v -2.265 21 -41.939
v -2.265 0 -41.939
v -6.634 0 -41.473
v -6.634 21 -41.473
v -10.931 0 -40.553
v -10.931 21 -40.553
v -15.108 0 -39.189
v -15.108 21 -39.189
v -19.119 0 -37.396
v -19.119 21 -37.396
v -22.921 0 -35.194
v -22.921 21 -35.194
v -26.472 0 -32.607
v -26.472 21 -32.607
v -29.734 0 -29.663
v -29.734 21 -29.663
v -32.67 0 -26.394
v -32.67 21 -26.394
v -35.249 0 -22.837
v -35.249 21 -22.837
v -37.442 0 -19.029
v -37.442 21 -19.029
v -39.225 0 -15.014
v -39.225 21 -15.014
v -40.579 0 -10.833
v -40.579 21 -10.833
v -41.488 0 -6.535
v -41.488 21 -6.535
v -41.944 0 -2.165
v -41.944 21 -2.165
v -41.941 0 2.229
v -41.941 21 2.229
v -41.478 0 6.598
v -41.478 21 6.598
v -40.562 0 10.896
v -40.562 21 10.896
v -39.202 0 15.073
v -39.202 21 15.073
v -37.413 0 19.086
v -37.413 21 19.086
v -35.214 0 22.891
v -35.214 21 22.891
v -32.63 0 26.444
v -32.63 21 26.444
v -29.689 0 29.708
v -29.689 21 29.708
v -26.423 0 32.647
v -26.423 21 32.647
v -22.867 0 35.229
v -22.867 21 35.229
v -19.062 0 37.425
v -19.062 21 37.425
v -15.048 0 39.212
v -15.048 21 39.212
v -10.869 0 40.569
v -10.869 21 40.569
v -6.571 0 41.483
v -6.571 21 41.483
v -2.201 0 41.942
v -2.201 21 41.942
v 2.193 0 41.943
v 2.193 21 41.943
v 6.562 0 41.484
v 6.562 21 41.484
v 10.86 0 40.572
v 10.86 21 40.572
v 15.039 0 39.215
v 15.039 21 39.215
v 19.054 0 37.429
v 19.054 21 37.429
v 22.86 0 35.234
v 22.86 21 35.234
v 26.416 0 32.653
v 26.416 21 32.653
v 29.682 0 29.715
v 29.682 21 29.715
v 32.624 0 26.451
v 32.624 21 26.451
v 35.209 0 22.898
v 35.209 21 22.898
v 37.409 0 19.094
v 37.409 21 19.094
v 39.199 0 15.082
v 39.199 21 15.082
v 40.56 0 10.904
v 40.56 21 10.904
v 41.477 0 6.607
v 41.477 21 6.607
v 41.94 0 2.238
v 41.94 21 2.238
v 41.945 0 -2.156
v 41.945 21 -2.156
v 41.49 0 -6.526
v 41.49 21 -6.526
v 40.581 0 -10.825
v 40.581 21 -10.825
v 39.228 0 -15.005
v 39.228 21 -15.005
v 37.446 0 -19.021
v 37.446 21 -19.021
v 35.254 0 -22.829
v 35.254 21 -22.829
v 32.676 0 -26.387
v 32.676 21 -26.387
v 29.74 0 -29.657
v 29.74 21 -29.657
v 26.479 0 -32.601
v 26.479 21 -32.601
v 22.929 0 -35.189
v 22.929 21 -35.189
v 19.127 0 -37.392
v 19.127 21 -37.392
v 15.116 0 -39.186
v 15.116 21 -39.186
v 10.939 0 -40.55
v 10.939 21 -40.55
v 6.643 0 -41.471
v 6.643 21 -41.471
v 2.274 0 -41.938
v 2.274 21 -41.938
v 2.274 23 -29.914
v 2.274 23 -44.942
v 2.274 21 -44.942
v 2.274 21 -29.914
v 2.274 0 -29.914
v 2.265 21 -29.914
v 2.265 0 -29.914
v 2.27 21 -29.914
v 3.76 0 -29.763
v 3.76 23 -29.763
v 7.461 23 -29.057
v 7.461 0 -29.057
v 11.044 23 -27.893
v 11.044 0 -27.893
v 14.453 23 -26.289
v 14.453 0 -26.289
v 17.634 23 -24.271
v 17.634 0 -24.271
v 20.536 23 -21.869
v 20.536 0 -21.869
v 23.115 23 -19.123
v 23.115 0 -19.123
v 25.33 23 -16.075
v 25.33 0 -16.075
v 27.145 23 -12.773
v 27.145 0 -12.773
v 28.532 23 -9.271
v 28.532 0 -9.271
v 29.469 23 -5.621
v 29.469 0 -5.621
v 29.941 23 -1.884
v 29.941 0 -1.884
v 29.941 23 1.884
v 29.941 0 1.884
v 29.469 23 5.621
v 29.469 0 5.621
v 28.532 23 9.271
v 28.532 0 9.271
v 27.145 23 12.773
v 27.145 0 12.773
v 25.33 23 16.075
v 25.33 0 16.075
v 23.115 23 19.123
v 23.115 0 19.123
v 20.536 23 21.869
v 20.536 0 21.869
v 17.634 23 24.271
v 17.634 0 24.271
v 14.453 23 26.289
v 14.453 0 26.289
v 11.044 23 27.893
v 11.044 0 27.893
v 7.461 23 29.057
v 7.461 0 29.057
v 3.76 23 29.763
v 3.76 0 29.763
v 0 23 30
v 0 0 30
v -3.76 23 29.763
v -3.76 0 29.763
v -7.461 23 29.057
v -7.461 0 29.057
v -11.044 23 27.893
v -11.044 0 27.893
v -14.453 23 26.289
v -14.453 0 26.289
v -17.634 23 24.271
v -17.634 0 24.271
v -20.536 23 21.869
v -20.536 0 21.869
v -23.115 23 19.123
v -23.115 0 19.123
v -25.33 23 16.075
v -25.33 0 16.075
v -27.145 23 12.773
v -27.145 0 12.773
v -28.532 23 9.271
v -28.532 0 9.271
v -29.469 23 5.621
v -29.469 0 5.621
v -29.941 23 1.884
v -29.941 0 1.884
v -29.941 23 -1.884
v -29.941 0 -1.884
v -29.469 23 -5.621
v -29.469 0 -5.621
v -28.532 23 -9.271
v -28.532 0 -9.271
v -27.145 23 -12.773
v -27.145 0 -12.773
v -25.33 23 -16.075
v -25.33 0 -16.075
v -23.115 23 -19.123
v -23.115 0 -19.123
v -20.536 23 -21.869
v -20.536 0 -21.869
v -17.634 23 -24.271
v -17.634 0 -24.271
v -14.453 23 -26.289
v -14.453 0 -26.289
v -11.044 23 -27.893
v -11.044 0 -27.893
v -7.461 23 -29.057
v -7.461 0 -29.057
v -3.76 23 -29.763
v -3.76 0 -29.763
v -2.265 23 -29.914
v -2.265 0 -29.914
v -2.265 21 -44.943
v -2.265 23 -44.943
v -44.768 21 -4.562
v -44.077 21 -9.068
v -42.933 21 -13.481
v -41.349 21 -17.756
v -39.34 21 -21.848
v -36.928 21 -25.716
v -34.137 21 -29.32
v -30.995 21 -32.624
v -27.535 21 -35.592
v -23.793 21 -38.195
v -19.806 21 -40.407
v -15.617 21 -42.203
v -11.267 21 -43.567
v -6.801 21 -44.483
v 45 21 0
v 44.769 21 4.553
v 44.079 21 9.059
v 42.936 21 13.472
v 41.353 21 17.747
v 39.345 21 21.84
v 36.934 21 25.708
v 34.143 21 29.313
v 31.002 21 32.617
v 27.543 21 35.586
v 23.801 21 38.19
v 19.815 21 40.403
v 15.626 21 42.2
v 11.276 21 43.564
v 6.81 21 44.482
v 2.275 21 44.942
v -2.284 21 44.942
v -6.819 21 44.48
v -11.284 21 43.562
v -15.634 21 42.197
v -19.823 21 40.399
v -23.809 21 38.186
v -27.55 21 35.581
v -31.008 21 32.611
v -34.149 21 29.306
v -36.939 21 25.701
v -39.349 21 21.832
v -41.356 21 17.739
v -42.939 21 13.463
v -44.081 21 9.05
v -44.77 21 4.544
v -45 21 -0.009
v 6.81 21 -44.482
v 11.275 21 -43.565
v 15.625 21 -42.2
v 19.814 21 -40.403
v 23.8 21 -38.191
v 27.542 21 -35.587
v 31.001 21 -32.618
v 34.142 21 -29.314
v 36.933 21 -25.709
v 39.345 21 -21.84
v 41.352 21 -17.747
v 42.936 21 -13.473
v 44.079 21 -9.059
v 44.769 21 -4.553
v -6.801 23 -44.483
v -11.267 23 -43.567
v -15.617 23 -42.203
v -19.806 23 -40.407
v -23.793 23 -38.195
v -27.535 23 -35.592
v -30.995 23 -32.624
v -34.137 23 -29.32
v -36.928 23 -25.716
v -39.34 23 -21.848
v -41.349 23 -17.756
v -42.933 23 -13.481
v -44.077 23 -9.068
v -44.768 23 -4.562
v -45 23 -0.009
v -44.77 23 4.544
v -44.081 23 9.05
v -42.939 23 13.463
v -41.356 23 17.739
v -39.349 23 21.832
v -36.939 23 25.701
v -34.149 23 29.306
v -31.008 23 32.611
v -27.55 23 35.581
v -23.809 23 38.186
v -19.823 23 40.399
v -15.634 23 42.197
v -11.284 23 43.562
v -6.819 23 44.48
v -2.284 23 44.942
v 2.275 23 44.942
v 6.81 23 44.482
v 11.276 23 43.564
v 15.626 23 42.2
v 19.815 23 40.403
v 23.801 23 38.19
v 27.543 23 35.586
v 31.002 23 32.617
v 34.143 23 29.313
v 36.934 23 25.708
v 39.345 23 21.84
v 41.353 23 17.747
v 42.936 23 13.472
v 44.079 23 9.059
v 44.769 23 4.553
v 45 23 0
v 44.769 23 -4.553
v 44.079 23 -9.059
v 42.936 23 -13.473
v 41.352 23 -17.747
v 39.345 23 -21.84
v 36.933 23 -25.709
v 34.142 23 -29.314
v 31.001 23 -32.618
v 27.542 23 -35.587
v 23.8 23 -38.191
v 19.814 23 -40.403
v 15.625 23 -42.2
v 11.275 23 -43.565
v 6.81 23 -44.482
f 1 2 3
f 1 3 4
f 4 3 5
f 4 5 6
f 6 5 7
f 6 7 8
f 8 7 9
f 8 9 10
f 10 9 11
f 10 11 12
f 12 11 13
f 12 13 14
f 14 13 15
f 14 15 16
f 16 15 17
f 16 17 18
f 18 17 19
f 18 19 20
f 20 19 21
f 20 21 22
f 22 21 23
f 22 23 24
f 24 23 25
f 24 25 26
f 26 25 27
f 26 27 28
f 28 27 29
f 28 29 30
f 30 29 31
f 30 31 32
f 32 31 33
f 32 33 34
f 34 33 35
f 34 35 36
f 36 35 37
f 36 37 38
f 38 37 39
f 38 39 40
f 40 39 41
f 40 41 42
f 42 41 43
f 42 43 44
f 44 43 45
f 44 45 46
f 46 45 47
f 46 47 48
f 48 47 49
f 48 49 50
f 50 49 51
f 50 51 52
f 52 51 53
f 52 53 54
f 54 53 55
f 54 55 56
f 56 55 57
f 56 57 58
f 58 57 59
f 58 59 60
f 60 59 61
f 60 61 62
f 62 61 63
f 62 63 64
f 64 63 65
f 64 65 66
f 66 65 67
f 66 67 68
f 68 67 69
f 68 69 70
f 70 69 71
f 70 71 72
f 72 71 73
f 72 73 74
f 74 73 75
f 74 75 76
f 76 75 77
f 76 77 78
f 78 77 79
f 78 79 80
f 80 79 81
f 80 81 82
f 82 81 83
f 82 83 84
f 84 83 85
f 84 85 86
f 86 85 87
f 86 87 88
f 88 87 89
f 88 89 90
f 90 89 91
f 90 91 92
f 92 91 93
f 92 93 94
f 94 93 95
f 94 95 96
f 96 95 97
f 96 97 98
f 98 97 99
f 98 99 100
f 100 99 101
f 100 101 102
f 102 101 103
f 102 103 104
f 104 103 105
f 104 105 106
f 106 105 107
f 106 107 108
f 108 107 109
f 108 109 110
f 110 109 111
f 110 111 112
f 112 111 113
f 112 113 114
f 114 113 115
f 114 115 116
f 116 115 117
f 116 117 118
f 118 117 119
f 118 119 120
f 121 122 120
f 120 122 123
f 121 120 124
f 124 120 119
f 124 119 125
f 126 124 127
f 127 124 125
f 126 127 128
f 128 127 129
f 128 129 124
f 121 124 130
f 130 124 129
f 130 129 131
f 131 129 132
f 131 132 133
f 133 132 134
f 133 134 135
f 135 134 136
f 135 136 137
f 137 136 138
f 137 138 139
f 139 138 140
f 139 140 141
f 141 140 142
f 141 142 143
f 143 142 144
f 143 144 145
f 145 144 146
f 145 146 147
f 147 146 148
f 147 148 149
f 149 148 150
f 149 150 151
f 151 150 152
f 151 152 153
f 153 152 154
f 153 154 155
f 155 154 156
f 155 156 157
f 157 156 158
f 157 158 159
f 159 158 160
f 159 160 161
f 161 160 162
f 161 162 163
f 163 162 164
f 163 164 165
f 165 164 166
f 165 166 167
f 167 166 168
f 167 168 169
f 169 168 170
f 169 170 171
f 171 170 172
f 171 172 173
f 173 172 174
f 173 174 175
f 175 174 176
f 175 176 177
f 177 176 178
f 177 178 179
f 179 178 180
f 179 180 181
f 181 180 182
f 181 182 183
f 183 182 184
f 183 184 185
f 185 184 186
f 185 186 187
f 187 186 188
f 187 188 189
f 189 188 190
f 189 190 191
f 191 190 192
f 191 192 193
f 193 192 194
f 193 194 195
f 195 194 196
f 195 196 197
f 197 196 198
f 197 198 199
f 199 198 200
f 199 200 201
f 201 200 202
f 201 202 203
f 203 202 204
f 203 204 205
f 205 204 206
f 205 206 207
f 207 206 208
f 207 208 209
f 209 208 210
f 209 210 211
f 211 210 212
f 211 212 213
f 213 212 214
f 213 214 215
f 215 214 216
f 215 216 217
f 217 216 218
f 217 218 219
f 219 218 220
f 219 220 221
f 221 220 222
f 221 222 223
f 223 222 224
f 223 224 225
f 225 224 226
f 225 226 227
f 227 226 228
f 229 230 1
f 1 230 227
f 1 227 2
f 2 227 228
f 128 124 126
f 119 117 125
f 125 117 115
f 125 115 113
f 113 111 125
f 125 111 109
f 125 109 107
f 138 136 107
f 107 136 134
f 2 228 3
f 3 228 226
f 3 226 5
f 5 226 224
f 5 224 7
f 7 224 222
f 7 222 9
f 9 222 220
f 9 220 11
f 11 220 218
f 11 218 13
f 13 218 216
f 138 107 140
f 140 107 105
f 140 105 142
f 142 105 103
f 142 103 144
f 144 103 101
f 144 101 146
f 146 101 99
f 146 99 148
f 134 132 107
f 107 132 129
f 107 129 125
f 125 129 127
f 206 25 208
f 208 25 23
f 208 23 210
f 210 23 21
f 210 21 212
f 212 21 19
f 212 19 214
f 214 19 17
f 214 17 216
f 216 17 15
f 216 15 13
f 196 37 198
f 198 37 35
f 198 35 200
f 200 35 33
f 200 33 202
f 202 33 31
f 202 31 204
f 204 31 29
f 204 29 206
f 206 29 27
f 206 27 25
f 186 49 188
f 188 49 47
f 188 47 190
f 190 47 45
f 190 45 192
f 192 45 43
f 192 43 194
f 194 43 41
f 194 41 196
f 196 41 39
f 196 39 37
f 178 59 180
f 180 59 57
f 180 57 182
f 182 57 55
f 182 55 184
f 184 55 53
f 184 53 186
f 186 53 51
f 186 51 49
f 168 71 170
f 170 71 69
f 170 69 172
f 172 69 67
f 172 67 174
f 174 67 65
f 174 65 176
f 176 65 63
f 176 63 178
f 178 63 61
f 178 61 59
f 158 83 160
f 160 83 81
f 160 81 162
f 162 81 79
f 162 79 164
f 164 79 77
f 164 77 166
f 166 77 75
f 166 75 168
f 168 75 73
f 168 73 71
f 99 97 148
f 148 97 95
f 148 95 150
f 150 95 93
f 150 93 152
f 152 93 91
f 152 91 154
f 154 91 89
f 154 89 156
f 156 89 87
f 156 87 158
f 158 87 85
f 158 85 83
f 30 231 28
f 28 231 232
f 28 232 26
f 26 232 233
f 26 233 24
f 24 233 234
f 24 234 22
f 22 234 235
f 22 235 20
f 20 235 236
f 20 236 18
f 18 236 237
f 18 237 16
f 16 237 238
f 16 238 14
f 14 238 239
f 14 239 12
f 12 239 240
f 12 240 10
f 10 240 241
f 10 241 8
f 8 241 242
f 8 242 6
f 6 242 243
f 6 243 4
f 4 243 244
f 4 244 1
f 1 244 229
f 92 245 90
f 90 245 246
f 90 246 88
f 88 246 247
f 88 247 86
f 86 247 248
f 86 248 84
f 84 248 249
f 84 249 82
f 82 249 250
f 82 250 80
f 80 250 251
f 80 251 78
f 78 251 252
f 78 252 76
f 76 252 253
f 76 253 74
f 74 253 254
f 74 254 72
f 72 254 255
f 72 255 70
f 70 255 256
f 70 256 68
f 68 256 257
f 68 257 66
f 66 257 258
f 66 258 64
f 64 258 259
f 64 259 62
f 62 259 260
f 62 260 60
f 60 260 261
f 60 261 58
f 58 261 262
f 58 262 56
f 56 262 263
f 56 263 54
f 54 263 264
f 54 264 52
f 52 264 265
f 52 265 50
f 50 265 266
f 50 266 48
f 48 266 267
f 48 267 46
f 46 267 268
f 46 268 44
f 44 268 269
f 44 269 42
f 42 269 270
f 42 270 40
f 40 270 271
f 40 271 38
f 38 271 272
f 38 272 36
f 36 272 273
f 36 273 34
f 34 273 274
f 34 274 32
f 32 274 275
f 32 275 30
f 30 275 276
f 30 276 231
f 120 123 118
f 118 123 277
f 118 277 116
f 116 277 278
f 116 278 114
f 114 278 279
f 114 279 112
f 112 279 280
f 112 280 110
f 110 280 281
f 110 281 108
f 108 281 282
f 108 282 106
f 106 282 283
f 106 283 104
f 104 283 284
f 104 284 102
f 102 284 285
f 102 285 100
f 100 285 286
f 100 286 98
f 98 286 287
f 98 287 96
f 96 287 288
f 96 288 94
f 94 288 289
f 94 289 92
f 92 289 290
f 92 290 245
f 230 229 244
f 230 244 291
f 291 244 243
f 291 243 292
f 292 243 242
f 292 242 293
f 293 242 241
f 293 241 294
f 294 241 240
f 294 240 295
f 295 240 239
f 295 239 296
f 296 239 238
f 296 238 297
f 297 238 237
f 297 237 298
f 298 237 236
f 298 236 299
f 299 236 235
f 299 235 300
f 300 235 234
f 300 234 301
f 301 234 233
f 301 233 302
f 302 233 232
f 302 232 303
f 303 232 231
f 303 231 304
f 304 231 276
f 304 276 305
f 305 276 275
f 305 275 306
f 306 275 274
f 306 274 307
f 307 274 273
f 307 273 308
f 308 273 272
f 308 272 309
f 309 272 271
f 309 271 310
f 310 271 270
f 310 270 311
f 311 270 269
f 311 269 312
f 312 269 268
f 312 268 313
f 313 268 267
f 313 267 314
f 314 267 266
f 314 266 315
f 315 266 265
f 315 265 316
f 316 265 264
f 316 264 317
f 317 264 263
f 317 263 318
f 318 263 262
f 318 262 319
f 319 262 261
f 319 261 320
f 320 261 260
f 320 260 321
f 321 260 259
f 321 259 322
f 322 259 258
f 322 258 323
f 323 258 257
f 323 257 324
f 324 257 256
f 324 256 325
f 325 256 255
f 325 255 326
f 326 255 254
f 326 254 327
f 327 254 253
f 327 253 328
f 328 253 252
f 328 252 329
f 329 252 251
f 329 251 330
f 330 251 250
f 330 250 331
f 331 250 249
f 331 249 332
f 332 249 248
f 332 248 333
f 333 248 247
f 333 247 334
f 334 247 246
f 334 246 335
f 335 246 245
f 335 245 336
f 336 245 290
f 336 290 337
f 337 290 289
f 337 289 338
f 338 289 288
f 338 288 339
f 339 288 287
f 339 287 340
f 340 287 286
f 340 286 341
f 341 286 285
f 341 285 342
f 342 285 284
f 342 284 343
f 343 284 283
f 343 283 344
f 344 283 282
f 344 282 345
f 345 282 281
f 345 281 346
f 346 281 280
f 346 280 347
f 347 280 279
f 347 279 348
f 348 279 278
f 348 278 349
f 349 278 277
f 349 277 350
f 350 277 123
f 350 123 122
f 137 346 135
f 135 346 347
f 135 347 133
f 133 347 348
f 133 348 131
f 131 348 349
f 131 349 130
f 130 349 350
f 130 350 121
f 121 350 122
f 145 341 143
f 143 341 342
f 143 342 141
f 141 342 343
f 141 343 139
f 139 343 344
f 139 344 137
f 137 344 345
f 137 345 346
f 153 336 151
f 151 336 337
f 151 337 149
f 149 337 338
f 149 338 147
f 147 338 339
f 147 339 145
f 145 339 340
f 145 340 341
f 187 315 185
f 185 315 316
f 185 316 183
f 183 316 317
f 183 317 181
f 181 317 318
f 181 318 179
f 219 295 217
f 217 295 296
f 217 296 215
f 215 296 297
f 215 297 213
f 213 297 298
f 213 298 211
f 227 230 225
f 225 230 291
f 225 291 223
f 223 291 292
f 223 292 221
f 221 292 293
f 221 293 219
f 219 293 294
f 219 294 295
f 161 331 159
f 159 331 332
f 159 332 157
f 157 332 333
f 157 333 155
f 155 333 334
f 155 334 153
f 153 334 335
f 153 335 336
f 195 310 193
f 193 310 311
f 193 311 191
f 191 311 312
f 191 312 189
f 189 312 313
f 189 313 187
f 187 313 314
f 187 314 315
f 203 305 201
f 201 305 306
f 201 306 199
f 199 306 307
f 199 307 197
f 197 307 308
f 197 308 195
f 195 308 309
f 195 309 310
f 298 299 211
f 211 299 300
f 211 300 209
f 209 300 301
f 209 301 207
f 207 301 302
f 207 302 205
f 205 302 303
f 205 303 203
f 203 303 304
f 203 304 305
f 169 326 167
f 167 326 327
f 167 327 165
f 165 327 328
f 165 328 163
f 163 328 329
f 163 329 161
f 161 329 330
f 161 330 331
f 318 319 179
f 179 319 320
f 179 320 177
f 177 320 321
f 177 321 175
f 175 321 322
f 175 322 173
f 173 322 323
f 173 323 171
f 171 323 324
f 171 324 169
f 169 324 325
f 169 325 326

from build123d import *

# Parameters (mm, degrees)
BOSS_EXTRUDE1_DEPTH = 21
BOSS_EXTRUDE2_DEPTH = 2


with BuildPart() as part:
    # Sketch1 → Boss-Extrude1 (new body)
    with BuildSketch(Plane(origin=(0, 0, 0), x_dir=(1, 0, 0), z_dir=(0, 1, 0))):
        with BuildLine():
            Line((2.265430343, 29.914341466), (2.274223615, 29.914341466))
            Line((2.274223615, 29.914341466), (2.274223615, 41.938382264))
            ThreePointArc((2.274223615, 41.938382264), (-0.004403071, -41.999999769), (-2.265430343, 41.938858179))
            Line((-2.265430343, 41.938858179), (-2.265430343, 29.914341466))
            ThreePointArc((-2.265430343, 29.914341466), (0, -30), (2.265430343, 29.914341466))
        make_face()
    extrude(amount=BOSS_EXTRUDE1_DEPTH)

    # Boss-Extrude2: read off the stored shape, not the designer's step
    # Boss-Extrude2 outline → Boss-Extrude2 (add)
    with BuildSketch(Plane(origin=(0, 21, 0), x_dir=(1, 0, 0), z_dir=(0, 1, 0))):
        with BuildLine():
            ThreePointArc((-2.265430343, 44.942939661), (-0.004402235, -44.999999785), (2.274223615, 44.942495558))
            Line((2.274223615, 44.942495558), (2.274223325, 29.913674269))
            ThreePointArc((2.274223325, 29.913674269), (-0.004409129, -29.999999676), (-2.265430343, 29.914341466))
            Line((-2.265430343, 29.914341466), (-2.265430343, 44.942939661))
        make_face()
    extrude(amount=BOSS_EXTRUDE2_DEPTH)


solid = part.part
